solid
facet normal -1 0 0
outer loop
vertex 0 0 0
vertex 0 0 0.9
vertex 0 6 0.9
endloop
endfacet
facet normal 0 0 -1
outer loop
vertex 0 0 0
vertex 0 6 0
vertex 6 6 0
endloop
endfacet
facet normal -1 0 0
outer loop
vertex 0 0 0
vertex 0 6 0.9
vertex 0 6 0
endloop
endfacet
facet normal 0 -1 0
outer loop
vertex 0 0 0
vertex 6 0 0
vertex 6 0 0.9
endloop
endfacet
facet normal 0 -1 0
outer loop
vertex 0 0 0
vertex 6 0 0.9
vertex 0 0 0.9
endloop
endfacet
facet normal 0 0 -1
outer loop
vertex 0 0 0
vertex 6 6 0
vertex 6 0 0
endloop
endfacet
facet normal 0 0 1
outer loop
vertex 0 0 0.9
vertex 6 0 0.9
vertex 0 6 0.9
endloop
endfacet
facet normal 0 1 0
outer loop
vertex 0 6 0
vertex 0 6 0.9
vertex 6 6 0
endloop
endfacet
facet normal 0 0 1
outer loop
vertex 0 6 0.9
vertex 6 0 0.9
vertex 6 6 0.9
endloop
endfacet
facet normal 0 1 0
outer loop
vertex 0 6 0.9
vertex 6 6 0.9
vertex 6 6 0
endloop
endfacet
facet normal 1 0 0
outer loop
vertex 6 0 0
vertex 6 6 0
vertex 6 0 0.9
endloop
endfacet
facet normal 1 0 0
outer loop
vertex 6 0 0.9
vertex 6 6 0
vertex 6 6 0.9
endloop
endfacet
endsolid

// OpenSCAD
/* Warning, this is a very basic generator with a lot of approximation 
input data : [VQFN, VNX, 6x6x0.9mm, 48, , A, C04-00345A]
generated by com.zoubworld.electronics.cad.model3d.Basic
Date : Sun Feb 15 10:50:48 CET 2026
*/

//body
color("black")
translate([0,0,0])
cube([6.0,6.0,0.9], center=false);
